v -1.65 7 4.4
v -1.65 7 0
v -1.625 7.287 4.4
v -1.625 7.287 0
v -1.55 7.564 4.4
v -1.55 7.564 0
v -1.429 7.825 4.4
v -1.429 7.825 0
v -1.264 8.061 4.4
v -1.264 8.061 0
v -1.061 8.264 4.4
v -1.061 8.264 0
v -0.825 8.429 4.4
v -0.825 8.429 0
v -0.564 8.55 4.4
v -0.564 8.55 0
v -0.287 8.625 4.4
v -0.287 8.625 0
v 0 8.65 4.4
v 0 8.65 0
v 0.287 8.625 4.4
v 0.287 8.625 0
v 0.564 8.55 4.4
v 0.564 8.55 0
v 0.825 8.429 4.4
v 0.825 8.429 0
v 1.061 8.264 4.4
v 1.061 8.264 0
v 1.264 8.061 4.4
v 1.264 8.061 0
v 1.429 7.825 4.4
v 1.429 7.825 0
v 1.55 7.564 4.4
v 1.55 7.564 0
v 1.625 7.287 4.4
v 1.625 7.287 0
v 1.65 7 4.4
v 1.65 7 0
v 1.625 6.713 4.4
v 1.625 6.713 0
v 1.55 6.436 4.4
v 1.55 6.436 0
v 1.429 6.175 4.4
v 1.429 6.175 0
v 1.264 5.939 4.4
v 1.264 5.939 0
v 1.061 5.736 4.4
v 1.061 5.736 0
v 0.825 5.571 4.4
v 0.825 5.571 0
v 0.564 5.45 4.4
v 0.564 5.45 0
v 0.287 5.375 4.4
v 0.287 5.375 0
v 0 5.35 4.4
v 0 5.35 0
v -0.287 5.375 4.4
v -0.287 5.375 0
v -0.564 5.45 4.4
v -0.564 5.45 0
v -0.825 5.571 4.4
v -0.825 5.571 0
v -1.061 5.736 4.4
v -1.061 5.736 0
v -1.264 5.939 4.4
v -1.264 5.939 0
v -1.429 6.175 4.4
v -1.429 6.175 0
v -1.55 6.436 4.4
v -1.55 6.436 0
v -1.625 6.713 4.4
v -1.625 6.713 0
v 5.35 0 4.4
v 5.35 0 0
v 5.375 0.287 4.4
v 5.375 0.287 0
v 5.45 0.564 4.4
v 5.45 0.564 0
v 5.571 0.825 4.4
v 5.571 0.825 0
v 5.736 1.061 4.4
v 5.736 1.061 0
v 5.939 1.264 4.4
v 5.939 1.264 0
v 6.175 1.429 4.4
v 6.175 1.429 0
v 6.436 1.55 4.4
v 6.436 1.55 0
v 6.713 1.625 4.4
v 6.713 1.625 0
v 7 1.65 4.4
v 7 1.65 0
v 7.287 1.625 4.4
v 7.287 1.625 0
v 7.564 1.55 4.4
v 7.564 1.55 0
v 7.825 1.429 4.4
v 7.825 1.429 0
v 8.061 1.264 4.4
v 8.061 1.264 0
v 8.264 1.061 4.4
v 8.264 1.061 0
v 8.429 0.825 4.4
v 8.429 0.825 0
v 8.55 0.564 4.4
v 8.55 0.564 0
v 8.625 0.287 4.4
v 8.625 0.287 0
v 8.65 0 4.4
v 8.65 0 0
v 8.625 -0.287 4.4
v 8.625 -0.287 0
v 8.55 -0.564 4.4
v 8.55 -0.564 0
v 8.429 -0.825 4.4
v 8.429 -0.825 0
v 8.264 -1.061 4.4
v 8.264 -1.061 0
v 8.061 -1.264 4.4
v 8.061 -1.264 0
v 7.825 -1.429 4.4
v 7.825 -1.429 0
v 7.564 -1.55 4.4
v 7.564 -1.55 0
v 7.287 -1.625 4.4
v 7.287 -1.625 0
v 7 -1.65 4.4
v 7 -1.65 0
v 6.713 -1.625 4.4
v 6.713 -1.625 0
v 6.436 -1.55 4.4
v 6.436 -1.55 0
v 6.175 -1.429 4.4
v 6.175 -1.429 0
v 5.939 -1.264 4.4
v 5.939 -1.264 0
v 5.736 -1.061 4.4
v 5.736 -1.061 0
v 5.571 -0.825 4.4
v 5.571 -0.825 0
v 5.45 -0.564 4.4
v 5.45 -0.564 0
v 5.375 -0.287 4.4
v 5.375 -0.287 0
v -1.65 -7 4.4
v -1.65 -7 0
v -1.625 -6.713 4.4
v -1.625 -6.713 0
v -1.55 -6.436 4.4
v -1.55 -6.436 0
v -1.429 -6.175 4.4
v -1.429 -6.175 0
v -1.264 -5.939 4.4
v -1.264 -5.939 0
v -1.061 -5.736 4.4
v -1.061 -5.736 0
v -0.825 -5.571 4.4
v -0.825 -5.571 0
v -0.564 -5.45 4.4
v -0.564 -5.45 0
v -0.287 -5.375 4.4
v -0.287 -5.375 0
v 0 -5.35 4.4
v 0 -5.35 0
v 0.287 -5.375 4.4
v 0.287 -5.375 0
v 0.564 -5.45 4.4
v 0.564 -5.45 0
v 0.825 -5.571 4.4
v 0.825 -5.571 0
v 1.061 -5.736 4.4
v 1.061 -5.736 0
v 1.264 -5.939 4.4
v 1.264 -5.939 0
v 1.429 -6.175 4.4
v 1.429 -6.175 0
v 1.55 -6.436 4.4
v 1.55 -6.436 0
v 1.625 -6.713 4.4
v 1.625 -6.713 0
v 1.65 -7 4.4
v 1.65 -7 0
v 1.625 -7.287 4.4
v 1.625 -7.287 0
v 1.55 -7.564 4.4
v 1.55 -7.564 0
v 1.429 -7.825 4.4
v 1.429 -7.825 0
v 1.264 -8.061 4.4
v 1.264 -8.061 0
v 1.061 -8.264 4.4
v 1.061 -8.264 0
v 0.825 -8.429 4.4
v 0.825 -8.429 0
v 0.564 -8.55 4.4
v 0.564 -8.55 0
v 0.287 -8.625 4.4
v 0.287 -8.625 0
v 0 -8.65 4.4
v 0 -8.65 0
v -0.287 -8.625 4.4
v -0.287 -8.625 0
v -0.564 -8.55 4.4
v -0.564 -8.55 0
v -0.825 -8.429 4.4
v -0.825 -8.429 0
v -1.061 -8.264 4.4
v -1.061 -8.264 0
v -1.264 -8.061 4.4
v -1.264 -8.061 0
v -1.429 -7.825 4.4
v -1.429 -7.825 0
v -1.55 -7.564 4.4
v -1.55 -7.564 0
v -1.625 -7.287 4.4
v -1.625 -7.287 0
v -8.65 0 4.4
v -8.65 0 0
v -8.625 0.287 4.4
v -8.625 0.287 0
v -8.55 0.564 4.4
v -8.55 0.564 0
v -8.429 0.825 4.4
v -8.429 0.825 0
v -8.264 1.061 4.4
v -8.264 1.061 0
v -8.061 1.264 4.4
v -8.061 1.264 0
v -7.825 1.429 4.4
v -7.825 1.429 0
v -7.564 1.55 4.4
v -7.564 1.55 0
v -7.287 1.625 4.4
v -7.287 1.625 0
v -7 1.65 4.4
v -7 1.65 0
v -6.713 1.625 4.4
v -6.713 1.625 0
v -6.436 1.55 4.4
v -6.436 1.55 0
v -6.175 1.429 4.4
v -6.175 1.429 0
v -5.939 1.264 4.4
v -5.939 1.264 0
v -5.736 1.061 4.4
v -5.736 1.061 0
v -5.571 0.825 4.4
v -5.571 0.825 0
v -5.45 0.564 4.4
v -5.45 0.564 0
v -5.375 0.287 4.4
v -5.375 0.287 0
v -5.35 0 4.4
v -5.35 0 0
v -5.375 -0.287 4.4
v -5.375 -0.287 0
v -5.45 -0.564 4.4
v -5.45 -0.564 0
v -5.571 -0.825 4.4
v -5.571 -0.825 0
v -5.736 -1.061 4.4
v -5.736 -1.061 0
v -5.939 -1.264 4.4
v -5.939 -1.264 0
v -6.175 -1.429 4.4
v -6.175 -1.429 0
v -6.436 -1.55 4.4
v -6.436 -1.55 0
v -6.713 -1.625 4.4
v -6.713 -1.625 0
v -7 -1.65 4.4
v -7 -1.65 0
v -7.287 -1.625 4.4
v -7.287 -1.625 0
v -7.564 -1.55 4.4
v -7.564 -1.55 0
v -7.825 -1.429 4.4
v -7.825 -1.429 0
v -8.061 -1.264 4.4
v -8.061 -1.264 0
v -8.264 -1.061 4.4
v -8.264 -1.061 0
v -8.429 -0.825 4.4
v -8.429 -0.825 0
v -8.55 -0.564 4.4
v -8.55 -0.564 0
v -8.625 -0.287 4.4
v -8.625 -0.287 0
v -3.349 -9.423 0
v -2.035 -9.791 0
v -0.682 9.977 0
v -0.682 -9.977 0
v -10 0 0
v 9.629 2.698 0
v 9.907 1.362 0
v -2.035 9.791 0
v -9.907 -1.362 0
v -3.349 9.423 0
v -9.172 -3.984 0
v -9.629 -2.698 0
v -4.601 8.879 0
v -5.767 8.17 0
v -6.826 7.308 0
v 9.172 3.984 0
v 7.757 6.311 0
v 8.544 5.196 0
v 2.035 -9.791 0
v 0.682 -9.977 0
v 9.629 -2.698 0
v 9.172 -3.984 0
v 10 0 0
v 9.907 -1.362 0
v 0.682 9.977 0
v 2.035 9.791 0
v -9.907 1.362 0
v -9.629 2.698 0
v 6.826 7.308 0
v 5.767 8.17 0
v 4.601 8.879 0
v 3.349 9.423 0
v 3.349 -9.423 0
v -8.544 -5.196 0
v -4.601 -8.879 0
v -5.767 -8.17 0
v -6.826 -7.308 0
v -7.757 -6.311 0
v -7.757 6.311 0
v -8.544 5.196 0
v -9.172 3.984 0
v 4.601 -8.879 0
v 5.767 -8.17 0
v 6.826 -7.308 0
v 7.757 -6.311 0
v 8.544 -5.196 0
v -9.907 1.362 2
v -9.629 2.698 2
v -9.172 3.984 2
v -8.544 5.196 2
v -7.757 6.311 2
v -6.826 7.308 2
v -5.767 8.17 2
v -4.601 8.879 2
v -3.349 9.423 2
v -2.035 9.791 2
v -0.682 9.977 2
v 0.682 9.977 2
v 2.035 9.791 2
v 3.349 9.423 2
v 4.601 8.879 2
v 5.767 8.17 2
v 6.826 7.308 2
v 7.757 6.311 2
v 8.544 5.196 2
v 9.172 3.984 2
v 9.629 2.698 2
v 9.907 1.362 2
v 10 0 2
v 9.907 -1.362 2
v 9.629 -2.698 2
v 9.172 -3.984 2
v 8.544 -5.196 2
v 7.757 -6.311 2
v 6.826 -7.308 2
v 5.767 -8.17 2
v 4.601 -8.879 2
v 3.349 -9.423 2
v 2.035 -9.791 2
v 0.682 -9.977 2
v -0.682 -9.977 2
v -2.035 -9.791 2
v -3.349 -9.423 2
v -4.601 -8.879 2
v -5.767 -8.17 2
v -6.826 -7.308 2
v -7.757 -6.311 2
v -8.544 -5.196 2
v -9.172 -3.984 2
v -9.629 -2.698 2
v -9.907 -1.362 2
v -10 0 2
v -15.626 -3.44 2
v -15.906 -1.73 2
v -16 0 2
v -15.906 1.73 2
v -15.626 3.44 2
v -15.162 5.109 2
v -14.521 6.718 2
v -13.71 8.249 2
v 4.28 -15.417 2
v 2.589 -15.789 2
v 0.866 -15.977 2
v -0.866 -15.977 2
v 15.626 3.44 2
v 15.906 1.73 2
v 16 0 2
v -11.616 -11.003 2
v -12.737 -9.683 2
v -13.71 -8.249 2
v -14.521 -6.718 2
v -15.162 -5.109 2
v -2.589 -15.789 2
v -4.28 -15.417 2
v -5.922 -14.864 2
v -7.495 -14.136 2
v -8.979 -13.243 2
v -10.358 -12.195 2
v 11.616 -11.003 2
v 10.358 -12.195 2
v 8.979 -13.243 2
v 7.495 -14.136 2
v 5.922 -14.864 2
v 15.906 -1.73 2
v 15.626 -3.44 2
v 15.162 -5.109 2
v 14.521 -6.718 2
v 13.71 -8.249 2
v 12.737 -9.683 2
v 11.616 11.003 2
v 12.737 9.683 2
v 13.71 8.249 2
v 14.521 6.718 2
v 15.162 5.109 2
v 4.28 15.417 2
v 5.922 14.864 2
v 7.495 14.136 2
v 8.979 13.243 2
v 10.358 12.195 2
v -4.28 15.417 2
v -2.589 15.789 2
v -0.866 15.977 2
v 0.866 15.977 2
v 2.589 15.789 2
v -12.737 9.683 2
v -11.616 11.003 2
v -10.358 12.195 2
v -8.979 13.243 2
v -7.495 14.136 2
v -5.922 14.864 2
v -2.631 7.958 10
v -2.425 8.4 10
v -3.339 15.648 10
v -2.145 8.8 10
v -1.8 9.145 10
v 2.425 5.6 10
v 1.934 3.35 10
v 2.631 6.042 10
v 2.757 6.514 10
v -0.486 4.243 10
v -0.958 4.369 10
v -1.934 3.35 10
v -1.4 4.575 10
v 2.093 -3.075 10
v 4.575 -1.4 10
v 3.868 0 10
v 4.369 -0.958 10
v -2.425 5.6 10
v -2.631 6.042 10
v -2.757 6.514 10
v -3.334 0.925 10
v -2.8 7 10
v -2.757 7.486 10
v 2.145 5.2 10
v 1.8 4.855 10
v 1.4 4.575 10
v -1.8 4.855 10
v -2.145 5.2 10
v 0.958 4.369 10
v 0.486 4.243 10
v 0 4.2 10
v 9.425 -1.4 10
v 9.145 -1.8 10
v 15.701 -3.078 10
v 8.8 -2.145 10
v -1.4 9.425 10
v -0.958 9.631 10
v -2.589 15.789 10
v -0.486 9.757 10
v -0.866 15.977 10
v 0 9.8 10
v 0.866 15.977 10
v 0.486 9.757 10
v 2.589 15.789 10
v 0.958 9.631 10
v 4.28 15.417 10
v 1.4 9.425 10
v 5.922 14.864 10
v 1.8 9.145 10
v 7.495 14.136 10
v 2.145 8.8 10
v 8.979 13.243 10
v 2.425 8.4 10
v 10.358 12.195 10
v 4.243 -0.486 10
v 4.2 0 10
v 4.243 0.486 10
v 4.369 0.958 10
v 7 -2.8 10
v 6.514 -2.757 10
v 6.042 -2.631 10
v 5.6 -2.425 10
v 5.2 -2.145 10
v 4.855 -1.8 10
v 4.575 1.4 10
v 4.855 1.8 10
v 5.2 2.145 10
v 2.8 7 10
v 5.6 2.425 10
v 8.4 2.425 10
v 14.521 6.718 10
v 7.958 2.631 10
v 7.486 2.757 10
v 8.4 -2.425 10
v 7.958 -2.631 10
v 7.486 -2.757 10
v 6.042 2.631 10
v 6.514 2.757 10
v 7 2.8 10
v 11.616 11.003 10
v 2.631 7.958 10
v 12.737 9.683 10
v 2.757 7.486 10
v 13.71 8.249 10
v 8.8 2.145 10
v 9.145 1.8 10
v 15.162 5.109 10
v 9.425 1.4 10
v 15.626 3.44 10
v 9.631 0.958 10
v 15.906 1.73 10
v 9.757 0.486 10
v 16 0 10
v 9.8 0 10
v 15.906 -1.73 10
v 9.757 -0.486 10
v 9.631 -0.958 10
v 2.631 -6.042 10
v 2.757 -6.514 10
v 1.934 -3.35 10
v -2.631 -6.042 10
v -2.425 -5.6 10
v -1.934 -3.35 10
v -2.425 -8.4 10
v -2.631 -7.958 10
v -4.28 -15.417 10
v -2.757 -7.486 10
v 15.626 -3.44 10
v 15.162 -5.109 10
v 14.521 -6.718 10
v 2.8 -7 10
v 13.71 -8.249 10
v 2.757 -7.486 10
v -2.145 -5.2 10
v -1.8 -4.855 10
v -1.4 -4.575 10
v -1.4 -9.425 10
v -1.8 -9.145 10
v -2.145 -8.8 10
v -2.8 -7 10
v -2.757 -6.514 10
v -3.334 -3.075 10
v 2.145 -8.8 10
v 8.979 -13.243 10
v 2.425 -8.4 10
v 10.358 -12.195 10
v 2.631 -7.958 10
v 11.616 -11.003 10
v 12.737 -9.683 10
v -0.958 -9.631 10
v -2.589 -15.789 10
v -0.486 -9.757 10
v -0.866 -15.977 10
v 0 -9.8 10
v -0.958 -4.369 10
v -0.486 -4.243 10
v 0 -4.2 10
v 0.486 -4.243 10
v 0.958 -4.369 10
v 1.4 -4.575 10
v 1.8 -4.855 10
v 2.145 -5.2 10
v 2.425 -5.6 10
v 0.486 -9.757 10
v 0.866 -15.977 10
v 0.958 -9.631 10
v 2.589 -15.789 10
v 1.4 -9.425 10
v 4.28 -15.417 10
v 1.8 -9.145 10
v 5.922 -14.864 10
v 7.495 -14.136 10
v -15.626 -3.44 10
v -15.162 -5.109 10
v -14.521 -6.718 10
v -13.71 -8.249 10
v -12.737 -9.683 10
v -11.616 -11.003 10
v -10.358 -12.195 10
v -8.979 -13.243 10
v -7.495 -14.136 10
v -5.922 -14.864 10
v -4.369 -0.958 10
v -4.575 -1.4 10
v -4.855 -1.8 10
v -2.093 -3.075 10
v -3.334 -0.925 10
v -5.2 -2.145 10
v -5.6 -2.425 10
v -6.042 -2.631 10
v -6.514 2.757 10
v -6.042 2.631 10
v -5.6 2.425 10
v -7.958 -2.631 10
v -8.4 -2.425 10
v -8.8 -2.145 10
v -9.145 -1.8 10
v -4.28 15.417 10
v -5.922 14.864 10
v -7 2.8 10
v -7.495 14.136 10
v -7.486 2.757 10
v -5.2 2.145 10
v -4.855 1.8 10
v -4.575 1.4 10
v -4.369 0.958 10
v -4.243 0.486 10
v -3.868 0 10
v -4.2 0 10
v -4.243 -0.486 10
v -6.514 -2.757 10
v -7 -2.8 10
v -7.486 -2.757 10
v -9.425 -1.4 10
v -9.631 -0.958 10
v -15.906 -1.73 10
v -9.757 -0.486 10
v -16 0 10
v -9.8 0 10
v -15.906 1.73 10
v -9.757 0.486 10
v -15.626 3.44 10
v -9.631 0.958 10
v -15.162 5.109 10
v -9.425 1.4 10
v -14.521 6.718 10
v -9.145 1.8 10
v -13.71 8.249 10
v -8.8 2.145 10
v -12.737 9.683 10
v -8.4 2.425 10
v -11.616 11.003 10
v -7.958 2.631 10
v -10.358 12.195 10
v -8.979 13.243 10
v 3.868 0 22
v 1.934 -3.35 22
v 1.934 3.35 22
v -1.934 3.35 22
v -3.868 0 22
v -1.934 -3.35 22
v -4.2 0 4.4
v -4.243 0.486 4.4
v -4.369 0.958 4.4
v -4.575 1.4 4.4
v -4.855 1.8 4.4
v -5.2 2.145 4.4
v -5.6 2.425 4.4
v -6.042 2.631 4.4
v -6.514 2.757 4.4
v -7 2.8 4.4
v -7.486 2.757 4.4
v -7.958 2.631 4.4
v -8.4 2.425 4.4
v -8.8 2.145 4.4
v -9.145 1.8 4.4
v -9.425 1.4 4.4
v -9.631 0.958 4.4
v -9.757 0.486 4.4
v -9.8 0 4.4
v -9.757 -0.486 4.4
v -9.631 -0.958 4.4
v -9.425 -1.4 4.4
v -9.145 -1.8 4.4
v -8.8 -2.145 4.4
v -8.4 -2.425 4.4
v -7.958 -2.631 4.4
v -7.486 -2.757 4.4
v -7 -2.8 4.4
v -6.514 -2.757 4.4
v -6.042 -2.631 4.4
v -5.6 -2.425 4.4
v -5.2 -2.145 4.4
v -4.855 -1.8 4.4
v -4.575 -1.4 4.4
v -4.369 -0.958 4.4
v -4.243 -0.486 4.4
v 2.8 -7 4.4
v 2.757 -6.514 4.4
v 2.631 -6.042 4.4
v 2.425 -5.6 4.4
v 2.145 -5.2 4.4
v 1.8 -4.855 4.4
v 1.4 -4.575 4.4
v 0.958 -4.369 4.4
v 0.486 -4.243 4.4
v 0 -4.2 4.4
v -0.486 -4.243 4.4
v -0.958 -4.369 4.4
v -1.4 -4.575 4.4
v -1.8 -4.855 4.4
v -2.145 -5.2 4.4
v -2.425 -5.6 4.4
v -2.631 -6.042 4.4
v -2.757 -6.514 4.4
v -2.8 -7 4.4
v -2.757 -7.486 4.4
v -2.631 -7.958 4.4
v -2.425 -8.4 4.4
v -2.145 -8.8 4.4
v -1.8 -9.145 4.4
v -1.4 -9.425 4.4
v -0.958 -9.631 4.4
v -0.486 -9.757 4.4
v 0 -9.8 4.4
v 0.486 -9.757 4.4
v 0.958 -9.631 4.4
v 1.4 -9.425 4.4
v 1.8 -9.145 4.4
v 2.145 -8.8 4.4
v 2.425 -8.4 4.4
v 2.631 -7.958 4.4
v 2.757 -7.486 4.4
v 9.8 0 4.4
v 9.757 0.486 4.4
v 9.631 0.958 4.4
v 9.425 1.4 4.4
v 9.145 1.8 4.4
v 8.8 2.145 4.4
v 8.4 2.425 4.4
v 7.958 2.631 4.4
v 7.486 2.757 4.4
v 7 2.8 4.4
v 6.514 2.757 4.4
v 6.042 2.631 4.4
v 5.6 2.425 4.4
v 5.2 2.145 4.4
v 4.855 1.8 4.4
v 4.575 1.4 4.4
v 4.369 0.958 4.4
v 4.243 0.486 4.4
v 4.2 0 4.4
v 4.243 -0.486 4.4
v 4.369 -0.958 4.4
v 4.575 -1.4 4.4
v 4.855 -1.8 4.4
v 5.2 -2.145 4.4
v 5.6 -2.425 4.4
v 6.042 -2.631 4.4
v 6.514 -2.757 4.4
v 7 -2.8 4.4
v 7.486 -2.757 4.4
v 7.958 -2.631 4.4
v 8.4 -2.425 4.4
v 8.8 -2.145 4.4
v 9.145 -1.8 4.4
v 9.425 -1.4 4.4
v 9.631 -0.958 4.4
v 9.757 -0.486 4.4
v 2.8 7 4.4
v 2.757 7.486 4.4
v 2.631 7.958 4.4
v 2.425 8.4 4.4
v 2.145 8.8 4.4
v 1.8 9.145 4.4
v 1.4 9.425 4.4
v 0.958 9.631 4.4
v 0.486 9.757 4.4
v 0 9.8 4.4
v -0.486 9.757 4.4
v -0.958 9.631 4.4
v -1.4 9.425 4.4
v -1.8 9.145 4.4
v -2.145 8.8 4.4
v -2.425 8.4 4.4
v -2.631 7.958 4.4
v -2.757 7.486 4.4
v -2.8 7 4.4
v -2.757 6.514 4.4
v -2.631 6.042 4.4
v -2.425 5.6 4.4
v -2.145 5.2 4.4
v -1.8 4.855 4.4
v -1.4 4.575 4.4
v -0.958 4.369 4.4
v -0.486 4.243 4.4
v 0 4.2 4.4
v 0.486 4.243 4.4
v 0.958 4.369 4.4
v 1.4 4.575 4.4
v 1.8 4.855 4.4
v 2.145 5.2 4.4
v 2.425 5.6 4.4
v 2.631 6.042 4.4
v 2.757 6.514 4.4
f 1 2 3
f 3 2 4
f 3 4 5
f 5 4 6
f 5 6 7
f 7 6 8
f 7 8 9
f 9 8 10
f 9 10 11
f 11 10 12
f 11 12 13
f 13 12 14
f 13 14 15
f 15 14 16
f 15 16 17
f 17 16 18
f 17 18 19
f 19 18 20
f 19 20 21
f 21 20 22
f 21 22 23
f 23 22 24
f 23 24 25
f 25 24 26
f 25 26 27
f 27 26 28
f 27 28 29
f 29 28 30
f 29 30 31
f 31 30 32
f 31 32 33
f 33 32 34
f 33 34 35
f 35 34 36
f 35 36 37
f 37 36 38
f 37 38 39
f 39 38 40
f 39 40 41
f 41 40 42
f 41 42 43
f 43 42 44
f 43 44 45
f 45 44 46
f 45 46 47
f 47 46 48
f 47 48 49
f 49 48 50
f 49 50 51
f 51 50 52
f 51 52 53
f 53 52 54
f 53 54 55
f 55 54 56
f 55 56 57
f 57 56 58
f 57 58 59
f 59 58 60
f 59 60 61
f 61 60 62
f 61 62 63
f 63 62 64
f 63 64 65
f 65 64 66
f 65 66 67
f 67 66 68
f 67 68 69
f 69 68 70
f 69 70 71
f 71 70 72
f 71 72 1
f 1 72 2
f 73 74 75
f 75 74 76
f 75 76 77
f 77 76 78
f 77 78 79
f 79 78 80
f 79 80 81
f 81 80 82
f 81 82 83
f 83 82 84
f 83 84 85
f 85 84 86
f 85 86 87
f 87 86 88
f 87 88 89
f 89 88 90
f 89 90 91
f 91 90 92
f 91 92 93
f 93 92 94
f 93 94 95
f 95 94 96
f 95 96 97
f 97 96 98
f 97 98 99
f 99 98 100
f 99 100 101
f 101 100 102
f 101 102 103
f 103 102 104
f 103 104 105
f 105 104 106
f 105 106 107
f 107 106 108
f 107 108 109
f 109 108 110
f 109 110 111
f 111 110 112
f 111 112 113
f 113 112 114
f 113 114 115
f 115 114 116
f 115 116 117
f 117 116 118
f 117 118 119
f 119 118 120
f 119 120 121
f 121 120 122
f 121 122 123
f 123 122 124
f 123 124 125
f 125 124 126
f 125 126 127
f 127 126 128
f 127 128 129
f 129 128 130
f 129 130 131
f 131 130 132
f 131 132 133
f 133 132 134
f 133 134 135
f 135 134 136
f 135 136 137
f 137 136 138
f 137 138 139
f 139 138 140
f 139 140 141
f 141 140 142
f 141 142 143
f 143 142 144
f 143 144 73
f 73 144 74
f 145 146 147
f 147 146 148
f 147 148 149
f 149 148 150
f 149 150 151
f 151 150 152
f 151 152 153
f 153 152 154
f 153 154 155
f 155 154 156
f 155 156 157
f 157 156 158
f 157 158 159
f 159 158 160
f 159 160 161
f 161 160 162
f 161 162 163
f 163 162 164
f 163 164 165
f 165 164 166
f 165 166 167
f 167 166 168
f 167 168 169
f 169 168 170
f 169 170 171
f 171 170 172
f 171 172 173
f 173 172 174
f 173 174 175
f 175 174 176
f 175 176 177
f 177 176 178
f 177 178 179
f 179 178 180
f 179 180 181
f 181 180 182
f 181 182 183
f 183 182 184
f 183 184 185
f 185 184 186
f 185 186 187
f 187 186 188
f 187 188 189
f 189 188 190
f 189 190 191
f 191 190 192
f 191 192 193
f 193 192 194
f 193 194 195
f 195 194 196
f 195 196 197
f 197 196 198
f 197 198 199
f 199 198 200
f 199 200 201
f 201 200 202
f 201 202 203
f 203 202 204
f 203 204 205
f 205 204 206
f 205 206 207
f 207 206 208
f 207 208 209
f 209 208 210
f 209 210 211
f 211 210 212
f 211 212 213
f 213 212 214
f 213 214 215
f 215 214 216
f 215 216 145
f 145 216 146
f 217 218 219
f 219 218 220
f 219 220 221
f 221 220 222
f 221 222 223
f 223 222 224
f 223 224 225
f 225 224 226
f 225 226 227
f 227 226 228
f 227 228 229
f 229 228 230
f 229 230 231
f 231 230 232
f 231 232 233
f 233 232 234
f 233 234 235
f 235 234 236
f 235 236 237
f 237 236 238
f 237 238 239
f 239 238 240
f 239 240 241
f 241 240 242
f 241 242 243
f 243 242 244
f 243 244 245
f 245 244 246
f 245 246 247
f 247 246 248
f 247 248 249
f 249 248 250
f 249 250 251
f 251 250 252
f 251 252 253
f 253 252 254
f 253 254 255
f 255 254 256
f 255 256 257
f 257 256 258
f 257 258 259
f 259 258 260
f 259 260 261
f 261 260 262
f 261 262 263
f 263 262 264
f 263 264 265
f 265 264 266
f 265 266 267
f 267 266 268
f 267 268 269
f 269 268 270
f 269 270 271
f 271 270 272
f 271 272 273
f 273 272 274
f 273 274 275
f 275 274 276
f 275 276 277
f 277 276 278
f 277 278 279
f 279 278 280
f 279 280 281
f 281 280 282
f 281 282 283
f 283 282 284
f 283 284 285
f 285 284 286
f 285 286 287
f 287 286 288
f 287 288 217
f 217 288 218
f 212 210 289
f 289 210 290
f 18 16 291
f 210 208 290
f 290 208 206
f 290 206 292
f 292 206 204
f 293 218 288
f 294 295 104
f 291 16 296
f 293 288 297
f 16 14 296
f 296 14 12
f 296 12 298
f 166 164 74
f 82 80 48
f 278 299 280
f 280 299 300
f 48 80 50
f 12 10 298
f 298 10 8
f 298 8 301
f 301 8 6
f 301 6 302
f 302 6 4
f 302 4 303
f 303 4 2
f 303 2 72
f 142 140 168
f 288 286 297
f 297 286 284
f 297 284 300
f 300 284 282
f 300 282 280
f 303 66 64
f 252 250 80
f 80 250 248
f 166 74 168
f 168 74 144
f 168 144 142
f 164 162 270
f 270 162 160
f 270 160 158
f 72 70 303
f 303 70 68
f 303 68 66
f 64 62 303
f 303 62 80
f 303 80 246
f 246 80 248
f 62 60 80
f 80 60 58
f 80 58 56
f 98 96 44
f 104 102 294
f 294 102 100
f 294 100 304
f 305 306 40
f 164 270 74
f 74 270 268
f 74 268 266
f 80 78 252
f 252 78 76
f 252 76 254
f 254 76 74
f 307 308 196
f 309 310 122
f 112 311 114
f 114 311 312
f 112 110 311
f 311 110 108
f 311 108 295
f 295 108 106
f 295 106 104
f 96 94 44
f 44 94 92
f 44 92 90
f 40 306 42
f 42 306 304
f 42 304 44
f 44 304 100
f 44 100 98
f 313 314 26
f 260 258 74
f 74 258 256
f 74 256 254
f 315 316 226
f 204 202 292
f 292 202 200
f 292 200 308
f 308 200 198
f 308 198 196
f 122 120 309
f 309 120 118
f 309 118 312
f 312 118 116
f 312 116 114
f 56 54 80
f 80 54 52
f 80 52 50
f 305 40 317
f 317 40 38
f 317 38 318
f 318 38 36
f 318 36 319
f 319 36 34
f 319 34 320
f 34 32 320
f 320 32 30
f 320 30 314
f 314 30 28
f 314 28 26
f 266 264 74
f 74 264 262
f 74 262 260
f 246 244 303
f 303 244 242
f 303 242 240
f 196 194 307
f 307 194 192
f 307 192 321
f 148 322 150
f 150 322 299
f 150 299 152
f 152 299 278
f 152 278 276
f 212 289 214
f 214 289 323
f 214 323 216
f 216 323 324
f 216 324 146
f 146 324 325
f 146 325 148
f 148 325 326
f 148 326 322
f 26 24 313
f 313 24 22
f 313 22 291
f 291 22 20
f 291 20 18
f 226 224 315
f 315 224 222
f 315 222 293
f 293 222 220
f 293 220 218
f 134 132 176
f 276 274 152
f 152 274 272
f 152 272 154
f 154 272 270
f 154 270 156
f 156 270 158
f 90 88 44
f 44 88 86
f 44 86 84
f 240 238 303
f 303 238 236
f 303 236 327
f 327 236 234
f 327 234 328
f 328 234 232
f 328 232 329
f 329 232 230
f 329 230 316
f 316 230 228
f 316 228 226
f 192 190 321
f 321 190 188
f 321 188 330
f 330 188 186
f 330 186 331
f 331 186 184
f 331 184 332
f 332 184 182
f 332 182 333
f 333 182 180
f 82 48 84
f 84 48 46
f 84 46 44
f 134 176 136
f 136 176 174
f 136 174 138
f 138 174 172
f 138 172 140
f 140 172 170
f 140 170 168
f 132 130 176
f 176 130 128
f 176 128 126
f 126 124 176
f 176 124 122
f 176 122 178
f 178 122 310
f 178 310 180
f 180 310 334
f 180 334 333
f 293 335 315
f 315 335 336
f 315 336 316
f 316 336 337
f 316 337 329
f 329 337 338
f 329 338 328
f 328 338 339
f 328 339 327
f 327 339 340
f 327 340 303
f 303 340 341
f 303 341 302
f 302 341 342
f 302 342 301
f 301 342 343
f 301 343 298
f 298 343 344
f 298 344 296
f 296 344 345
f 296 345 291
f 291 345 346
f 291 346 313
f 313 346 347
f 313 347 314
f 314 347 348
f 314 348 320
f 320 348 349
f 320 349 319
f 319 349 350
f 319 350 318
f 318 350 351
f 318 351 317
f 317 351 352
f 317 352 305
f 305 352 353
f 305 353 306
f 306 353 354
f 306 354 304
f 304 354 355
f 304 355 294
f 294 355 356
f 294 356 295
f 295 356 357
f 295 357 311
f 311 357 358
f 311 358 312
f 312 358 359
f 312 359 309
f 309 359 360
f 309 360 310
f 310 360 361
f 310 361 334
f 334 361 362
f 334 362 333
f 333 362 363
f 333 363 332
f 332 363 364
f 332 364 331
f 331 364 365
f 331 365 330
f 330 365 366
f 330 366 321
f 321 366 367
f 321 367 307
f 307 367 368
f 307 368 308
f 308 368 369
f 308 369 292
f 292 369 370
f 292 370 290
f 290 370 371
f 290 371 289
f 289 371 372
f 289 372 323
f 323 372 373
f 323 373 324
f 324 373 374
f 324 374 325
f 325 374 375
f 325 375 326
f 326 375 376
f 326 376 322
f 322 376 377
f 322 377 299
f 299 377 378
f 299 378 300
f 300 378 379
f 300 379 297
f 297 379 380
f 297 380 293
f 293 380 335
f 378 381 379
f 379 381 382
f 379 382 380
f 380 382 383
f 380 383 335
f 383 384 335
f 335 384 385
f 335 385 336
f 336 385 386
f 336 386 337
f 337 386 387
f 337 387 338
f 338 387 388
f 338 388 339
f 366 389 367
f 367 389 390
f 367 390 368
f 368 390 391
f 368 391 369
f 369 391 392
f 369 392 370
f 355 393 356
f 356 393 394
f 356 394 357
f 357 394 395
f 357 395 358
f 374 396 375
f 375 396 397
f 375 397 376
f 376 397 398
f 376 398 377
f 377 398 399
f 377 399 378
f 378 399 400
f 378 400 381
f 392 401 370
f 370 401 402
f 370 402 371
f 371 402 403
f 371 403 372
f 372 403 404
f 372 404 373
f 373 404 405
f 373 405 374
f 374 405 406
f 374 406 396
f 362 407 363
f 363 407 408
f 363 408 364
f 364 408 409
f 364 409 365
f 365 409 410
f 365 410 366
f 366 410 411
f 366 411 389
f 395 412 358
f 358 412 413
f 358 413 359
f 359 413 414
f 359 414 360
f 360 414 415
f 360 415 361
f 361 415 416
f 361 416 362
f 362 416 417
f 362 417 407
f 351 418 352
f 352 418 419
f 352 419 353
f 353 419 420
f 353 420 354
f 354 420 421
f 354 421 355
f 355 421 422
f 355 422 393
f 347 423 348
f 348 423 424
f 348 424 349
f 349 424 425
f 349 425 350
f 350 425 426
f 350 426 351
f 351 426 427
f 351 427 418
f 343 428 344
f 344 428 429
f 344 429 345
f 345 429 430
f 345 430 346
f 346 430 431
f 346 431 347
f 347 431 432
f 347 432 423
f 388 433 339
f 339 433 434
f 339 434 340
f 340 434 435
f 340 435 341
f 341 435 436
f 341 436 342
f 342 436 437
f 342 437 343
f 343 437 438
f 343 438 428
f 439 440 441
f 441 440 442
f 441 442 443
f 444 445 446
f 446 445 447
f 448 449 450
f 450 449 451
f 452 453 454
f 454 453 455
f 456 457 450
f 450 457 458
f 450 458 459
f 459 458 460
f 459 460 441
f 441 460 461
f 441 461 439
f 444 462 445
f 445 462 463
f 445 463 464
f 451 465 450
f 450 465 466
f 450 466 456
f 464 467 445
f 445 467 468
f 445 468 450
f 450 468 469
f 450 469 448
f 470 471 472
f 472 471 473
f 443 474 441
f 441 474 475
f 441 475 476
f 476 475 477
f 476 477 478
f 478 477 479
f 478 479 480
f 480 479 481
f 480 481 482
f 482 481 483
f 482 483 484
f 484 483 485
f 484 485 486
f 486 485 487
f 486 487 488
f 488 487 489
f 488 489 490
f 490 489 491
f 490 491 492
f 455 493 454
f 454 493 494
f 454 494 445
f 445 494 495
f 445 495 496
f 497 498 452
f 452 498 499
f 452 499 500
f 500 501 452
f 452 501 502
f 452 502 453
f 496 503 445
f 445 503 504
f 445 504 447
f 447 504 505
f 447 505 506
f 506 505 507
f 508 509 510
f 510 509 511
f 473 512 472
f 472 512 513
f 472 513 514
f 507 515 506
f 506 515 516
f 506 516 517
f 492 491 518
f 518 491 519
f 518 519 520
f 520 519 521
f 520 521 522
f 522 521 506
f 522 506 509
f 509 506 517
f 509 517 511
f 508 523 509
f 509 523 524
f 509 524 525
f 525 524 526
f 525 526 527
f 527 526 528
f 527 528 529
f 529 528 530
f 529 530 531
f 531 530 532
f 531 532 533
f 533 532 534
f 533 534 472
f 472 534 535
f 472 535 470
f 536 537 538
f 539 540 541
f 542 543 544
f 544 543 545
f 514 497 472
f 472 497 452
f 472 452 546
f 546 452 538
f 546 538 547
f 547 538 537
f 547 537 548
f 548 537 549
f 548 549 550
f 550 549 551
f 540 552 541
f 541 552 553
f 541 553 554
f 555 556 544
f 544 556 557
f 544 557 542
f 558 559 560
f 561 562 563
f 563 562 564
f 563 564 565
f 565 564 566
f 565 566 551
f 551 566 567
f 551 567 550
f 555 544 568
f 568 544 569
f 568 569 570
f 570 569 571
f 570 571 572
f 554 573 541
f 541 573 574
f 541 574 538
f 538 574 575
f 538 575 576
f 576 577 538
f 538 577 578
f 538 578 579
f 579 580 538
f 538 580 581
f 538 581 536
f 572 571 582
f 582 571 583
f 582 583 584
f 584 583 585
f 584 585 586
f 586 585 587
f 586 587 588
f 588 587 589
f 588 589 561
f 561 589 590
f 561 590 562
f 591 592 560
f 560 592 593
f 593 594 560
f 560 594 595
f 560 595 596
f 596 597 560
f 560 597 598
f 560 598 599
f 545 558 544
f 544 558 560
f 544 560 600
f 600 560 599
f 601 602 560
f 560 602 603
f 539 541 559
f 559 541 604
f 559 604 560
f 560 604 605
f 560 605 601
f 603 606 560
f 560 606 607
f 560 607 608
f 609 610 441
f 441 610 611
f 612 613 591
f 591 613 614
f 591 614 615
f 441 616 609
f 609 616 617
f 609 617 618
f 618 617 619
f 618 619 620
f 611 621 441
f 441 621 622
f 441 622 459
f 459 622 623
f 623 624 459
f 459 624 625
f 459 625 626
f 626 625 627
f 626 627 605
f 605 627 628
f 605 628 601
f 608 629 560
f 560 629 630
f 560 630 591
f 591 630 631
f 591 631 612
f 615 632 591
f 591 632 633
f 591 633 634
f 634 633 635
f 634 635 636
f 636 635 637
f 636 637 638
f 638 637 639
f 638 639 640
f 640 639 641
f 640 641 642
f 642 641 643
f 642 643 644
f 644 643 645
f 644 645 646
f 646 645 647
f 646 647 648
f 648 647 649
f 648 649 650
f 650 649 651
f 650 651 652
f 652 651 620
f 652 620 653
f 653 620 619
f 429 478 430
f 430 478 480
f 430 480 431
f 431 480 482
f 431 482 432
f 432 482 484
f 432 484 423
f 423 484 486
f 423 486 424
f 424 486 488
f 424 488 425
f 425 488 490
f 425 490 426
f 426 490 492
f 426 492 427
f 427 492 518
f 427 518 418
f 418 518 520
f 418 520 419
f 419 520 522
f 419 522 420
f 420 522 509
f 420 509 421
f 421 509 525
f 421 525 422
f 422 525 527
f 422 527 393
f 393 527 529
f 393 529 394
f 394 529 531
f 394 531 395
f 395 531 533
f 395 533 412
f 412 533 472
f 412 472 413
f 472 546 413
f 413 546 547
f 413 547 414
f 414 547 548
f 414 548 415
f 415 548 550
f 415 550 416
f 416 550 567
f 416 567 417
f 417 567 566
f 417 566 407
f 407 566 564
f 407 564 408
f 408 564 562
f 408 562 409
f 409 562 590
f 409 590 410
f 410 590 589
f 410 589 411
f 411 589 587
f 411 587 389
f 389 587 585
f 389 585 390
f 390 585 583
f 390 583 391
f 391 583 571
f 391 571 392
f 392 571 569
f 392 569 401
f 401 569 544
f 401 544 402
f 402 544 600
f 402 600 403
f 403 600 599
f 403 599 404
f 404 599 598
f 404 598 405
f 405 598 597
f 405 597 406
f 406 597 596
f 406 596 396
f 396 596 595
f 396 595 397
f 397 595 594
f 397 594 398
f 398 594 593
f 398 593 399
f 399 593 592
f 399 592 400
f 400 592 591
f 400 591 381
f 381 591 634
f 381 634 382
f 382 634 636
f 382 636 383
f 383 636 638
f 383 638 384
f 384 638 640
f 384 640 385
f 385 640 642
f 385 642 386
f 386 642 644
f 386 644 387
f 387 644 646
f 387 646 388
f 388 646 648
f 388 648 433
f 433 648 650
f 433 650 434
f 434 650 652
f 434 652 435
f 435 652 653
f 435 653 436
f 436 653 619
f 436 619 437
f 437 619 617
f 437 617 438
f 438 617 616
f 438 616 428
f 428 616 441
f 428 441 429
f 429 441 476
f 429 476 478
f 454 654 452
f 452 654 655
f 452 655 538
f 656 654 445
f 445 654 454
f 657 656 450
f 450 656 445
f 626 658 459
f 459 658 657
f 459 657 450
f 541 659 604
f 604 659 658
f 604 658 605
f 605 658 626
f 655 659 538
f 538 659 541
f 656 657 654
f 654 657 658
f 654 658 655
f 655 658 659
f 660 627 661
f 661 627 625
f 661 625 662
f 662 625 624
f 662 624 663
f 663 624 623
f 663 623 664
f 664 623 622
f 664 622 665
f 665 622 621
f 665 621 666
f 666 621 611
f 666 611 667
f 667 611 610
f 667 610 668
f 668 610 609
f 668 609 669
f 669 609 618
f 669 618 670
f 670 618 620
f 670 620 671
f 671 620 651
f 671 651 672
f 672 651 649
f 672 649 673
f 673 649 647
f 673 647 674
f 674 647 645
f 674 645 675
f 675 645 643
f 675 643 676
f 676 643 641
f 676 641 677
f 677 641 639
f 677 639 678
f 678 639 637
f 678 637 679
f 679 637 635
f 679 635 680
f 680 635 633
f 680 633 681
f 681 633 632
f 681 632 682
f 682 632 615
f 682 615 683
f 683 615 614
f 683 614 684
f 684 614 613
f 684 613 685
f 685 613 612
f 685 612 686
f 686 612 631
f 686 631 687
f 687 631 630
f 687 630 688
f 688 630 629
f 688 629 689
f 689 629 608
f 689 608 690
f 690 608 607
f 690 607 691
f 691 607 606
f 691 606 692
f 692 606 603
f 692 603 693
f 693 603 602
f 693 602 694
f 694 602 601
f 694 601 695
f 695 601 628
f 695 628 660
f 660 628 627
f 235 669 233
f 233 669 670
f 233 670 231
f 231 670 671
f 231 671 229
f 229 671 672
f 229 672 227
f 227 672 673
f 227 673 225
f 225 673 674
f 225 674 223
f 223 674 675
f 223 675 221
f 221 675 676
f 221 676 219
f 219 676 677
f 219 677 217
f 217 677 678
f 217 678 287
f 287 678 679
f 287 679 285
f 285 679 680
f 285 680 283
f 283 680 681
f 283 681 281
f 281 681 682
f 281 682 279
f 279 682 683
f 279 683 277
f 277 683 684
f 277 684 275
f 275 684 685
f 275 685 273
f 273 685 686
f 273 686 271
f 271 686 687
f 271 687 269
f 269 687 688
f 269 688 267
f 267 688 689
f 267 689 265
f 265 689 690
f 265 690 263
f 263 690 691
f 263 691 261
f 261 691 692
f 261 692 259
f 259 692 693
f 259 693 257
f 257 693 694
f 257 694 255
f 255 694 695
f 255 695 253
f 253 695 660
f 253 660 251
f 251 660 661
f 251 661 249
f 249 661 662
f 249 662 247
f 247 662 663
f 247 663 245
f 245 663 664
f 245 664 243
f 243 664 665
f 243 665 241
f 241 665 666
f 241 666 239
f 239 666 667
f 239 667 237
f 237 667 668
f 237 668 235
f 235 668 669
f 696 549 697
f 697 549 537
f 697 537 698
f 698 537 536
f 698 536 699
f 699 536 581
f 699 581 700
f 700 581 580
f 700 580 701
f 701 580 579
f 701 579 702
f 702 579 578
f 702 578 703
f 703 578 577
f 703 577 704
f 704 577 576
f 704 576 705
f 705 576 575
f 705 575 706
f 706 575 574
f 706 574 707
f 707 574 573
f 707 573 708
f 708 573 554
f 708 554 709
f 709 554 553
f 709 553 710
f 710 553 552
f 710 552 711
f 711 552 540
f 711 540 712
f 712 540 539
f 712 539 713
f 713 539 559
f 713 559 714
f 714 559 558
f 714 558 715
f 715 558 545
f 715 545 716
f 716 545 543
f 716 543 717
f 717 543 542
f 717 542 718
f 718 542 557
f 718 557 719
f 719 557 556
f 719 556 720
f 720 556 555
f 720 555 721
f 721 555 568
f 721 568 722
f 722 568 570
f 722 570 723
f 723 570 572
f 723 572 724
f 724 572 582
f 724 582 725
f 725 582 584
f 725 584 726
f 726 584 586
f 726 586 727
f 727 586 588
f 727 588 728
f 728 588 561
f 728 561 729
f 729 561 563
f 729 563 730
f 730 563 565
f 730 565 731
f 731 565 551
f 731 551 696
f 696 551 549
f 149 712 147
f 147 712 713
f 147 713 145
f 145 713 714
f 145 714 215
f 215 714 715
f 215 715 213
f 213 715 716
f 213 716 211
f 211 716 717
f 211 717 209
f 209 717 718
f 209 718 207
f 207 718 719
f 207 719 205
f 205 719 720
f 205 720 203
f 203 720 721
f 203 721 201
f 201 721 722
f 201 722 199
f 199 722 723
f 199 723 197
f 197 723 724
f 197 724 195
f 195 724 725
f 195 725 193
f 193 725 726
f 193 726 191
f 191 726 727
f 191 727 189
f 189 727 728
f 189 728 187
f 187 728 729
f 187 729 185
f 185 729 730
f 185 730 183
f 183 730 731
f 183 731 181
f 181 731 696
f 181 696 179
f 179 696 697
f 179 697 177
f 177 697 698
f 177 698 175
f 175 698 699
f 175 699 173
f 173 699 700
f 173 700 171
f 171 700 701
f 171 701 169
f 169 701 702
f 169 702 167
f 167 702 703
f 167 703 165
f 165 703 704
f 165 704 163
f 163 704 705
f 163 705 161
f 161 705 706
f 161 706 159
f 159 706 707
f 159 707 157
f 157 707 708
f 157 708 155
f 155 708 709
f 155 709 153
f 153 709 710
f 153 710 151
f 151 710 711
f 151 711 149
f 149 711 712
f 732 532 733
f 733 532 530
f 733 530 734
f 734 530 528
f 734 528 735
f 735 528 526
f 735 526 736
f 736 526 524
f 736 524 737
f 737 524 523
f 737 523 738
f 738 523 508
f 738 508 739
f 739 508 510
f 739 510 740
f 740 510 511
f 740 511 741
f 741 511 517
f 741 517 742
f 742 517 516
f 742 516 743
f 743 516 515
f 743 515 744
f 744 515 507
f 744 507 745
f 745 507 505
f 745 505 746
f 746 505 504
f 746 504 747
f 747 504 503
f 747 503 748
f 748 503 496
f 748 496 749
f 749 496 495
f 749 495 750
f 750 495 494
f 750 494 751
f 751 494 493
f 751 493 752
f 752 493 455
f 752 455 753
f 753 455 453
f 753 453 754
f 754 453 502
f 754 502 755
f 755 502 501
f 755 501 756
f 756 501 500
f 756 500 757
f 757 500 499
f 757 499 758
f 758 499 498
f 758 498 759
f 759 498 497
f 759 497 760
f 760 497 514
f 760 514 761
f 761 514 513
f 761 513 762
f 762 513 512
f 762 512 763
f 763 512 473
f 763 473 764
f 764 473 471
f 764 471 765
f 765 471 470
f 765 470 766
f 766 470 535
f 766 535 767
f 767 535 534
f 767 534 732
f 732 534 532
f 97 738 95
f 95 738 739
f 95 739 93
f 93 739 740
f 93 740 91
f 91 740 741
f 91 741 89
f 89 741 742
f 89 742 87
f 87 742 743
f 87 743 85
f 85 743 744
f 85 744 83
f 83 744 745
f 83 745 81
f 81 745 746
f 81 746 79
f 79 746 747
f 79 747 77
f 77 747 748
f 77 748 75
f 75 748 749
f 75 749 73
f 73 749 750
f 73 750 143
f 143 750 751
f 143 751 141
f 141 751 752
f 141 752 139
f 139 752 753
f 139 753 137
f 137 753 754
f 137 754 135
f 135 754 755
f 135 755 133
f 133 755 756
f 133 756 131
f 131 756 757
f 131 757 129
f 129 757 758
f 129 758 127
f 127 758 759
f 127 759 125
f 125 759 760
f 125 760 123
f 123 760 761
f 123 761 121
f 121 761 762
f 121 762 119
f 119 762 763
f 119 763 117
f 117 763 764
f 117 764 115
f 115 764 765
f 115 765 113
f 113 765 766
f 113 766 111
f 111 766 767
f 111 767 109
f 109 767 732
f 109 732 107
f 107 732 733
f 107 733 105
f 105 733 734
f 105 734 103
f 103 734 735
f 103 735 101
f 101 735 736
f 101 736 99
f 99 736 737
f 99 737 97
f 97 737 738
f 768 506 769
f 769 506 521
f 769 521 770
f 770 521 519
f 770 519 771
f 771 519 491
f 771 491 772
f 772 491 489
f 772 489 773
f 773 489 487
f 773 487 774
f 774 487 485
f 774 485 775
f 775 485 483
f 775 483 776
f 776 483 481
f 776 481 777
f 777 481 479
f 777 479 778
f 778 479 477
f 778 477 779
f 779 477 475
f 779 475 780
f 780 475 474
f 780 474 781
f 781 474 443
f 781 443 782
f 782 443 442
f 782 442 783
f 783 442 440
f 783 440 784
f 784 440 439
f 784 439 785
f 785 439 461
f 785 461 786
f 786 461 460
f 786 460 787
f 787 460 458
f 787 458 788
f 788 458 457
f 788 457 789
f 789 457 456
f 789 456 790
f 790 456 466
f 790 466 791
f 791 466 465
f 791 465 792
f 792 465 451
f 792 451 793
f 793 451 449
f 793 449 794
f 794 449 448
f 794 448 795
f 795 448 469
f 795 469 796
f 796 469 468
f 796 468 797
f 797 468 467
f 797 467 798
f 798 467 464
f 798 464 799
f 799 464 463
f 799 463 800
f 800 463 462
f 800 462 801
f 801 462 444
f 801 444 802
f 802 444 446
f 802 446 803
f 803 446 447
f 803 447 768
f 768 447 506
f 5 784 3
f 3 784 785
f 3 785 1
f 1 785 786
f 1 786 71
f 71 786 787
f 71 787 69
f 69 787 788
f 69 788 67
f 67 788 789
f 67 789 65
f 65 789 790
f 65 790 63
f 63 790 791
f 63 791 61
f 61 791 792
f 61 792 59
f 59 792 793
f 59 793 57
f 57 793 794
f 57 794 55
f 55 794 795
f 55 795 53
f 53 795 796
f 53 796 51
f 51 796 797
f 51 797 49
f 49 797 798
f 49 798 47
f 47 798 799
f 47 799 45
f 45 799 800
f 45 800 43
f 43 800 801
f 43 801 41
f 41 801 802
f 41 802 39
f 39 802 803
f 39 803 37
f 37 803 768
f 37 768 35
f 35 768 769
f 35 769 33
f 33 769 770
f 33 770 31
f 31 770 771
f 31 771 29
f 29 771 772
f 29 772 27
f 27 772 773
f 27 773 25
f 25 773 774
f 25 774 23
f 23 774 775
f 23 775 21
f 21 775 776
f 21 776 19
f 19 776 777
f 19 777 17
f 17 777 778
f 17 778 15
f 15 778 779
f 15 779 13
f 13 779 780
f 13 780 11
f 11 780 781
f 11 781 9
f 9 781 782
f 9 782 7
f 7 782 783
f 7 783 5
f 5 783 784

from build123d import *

# Parameters (mm, degrees)
SKETCH1_R           = 10
SKETCH1_R_2         = 1.65
BOSS_EXTRUDE1_DEPTH = 2
SKETCH2_R           = 16
BOSS_EXTRUDE2_DEPTH = 8
BOSS_EXTRUDE3_DEPTH = 12
SKETCH4_R           = 1.65
CUT_EXTRUDE1_DEPTH  = 12
SKETCH5_R           = 2.8
CUT_EXTRUDE2_DEPTH  = 5.6


with BuildPart() as part:
    # Sketch1 → Boss-Extrude1 (new body)
    with BuildSketch(Plane.XY):
        Circle(SKETCH1_R)
        with Locations((0, 7)):
            Circle(SKETCH1_R_2, mode=Mode.SUBTRACT)
        with Locations((7, 0)):
            Circle(SKETCH1_R_2, mode=Mode.SUBTRACT)
        with Locations((0, -7)):
            Circle(SKETCH1_R_2, mode=Mode.SUBTRACT)
        with Locations((-7, 0)):
            Circle(SKETCH1_R_2, mode=Mode.SUBTRACT)
    extrude(amount=BOSS_EXTRUDE1_DEPTH)

    # Sketch2 → Boss-Extrude2 (add)
    with BuildSketch(Plane.XY.offset(2)):
        Circle(SKETCH2_R)
    extrude(amount=BOSS_EXTRUDE2_DEPTH)

    # Sketch3 → Boss-Extrude3 (add)
    with BuildSketch(Plane.XY.offset(10)):
        Polygon((3.868246804, 0), (1.934123402, 3.35), (-1.934123402, 3.35), (-3.868246804, 0), (-1.934123402, -3.35), (1.934123402, -3.35), align=None)
    extrude(amount=BOSS_EXTRUDE3_DEPTH)

    # Sketch4 → Cut-Extrude1 (cut)
    with BuildSketch(Plane(origin=(0, 0, 0), x_dir=(-1, 0, 0), z_dir=(0, 0, -1))):
        with Locations(Location((0, -7, 0), (0, 0, 180))):
            Circle(SKETCH4_R)
        with Locations(Location((-7, 0, 0), (0, 0, 180))):
            Circle(SKETCH4_R)
        with Locations(Location((7, 0, 0), (0, 0, 180))):
            Circle(SKETCH4_R)
        with Locations(Location((0, 7, 0), (0, 0, 180))):
            Circle(SKETCH4_R)
    extrude(amount=-CUT_EXTRUDE1_DEPTH, mode=Mode.SUBTRACT)

    # Sketch5 → Cut-Extrude2 (cut)
    with BuildSketch(Plane.XY.offset(10)):
        with Locations((0, 7)):
            Circle(SKETCH5_R)
        with Locations((7, 0)):
            Circle(SKETCH5_R)
        with Locations((0, -7)):
            Circle(SKETCH5_R)
        with Locations((-7, 0)):
            Circle(SKETCH5_R)
    extrude(amount=-CUT_EXTRUDE2_DEPTH, mode=Mode.SUBTRACT)


solid = part.part
